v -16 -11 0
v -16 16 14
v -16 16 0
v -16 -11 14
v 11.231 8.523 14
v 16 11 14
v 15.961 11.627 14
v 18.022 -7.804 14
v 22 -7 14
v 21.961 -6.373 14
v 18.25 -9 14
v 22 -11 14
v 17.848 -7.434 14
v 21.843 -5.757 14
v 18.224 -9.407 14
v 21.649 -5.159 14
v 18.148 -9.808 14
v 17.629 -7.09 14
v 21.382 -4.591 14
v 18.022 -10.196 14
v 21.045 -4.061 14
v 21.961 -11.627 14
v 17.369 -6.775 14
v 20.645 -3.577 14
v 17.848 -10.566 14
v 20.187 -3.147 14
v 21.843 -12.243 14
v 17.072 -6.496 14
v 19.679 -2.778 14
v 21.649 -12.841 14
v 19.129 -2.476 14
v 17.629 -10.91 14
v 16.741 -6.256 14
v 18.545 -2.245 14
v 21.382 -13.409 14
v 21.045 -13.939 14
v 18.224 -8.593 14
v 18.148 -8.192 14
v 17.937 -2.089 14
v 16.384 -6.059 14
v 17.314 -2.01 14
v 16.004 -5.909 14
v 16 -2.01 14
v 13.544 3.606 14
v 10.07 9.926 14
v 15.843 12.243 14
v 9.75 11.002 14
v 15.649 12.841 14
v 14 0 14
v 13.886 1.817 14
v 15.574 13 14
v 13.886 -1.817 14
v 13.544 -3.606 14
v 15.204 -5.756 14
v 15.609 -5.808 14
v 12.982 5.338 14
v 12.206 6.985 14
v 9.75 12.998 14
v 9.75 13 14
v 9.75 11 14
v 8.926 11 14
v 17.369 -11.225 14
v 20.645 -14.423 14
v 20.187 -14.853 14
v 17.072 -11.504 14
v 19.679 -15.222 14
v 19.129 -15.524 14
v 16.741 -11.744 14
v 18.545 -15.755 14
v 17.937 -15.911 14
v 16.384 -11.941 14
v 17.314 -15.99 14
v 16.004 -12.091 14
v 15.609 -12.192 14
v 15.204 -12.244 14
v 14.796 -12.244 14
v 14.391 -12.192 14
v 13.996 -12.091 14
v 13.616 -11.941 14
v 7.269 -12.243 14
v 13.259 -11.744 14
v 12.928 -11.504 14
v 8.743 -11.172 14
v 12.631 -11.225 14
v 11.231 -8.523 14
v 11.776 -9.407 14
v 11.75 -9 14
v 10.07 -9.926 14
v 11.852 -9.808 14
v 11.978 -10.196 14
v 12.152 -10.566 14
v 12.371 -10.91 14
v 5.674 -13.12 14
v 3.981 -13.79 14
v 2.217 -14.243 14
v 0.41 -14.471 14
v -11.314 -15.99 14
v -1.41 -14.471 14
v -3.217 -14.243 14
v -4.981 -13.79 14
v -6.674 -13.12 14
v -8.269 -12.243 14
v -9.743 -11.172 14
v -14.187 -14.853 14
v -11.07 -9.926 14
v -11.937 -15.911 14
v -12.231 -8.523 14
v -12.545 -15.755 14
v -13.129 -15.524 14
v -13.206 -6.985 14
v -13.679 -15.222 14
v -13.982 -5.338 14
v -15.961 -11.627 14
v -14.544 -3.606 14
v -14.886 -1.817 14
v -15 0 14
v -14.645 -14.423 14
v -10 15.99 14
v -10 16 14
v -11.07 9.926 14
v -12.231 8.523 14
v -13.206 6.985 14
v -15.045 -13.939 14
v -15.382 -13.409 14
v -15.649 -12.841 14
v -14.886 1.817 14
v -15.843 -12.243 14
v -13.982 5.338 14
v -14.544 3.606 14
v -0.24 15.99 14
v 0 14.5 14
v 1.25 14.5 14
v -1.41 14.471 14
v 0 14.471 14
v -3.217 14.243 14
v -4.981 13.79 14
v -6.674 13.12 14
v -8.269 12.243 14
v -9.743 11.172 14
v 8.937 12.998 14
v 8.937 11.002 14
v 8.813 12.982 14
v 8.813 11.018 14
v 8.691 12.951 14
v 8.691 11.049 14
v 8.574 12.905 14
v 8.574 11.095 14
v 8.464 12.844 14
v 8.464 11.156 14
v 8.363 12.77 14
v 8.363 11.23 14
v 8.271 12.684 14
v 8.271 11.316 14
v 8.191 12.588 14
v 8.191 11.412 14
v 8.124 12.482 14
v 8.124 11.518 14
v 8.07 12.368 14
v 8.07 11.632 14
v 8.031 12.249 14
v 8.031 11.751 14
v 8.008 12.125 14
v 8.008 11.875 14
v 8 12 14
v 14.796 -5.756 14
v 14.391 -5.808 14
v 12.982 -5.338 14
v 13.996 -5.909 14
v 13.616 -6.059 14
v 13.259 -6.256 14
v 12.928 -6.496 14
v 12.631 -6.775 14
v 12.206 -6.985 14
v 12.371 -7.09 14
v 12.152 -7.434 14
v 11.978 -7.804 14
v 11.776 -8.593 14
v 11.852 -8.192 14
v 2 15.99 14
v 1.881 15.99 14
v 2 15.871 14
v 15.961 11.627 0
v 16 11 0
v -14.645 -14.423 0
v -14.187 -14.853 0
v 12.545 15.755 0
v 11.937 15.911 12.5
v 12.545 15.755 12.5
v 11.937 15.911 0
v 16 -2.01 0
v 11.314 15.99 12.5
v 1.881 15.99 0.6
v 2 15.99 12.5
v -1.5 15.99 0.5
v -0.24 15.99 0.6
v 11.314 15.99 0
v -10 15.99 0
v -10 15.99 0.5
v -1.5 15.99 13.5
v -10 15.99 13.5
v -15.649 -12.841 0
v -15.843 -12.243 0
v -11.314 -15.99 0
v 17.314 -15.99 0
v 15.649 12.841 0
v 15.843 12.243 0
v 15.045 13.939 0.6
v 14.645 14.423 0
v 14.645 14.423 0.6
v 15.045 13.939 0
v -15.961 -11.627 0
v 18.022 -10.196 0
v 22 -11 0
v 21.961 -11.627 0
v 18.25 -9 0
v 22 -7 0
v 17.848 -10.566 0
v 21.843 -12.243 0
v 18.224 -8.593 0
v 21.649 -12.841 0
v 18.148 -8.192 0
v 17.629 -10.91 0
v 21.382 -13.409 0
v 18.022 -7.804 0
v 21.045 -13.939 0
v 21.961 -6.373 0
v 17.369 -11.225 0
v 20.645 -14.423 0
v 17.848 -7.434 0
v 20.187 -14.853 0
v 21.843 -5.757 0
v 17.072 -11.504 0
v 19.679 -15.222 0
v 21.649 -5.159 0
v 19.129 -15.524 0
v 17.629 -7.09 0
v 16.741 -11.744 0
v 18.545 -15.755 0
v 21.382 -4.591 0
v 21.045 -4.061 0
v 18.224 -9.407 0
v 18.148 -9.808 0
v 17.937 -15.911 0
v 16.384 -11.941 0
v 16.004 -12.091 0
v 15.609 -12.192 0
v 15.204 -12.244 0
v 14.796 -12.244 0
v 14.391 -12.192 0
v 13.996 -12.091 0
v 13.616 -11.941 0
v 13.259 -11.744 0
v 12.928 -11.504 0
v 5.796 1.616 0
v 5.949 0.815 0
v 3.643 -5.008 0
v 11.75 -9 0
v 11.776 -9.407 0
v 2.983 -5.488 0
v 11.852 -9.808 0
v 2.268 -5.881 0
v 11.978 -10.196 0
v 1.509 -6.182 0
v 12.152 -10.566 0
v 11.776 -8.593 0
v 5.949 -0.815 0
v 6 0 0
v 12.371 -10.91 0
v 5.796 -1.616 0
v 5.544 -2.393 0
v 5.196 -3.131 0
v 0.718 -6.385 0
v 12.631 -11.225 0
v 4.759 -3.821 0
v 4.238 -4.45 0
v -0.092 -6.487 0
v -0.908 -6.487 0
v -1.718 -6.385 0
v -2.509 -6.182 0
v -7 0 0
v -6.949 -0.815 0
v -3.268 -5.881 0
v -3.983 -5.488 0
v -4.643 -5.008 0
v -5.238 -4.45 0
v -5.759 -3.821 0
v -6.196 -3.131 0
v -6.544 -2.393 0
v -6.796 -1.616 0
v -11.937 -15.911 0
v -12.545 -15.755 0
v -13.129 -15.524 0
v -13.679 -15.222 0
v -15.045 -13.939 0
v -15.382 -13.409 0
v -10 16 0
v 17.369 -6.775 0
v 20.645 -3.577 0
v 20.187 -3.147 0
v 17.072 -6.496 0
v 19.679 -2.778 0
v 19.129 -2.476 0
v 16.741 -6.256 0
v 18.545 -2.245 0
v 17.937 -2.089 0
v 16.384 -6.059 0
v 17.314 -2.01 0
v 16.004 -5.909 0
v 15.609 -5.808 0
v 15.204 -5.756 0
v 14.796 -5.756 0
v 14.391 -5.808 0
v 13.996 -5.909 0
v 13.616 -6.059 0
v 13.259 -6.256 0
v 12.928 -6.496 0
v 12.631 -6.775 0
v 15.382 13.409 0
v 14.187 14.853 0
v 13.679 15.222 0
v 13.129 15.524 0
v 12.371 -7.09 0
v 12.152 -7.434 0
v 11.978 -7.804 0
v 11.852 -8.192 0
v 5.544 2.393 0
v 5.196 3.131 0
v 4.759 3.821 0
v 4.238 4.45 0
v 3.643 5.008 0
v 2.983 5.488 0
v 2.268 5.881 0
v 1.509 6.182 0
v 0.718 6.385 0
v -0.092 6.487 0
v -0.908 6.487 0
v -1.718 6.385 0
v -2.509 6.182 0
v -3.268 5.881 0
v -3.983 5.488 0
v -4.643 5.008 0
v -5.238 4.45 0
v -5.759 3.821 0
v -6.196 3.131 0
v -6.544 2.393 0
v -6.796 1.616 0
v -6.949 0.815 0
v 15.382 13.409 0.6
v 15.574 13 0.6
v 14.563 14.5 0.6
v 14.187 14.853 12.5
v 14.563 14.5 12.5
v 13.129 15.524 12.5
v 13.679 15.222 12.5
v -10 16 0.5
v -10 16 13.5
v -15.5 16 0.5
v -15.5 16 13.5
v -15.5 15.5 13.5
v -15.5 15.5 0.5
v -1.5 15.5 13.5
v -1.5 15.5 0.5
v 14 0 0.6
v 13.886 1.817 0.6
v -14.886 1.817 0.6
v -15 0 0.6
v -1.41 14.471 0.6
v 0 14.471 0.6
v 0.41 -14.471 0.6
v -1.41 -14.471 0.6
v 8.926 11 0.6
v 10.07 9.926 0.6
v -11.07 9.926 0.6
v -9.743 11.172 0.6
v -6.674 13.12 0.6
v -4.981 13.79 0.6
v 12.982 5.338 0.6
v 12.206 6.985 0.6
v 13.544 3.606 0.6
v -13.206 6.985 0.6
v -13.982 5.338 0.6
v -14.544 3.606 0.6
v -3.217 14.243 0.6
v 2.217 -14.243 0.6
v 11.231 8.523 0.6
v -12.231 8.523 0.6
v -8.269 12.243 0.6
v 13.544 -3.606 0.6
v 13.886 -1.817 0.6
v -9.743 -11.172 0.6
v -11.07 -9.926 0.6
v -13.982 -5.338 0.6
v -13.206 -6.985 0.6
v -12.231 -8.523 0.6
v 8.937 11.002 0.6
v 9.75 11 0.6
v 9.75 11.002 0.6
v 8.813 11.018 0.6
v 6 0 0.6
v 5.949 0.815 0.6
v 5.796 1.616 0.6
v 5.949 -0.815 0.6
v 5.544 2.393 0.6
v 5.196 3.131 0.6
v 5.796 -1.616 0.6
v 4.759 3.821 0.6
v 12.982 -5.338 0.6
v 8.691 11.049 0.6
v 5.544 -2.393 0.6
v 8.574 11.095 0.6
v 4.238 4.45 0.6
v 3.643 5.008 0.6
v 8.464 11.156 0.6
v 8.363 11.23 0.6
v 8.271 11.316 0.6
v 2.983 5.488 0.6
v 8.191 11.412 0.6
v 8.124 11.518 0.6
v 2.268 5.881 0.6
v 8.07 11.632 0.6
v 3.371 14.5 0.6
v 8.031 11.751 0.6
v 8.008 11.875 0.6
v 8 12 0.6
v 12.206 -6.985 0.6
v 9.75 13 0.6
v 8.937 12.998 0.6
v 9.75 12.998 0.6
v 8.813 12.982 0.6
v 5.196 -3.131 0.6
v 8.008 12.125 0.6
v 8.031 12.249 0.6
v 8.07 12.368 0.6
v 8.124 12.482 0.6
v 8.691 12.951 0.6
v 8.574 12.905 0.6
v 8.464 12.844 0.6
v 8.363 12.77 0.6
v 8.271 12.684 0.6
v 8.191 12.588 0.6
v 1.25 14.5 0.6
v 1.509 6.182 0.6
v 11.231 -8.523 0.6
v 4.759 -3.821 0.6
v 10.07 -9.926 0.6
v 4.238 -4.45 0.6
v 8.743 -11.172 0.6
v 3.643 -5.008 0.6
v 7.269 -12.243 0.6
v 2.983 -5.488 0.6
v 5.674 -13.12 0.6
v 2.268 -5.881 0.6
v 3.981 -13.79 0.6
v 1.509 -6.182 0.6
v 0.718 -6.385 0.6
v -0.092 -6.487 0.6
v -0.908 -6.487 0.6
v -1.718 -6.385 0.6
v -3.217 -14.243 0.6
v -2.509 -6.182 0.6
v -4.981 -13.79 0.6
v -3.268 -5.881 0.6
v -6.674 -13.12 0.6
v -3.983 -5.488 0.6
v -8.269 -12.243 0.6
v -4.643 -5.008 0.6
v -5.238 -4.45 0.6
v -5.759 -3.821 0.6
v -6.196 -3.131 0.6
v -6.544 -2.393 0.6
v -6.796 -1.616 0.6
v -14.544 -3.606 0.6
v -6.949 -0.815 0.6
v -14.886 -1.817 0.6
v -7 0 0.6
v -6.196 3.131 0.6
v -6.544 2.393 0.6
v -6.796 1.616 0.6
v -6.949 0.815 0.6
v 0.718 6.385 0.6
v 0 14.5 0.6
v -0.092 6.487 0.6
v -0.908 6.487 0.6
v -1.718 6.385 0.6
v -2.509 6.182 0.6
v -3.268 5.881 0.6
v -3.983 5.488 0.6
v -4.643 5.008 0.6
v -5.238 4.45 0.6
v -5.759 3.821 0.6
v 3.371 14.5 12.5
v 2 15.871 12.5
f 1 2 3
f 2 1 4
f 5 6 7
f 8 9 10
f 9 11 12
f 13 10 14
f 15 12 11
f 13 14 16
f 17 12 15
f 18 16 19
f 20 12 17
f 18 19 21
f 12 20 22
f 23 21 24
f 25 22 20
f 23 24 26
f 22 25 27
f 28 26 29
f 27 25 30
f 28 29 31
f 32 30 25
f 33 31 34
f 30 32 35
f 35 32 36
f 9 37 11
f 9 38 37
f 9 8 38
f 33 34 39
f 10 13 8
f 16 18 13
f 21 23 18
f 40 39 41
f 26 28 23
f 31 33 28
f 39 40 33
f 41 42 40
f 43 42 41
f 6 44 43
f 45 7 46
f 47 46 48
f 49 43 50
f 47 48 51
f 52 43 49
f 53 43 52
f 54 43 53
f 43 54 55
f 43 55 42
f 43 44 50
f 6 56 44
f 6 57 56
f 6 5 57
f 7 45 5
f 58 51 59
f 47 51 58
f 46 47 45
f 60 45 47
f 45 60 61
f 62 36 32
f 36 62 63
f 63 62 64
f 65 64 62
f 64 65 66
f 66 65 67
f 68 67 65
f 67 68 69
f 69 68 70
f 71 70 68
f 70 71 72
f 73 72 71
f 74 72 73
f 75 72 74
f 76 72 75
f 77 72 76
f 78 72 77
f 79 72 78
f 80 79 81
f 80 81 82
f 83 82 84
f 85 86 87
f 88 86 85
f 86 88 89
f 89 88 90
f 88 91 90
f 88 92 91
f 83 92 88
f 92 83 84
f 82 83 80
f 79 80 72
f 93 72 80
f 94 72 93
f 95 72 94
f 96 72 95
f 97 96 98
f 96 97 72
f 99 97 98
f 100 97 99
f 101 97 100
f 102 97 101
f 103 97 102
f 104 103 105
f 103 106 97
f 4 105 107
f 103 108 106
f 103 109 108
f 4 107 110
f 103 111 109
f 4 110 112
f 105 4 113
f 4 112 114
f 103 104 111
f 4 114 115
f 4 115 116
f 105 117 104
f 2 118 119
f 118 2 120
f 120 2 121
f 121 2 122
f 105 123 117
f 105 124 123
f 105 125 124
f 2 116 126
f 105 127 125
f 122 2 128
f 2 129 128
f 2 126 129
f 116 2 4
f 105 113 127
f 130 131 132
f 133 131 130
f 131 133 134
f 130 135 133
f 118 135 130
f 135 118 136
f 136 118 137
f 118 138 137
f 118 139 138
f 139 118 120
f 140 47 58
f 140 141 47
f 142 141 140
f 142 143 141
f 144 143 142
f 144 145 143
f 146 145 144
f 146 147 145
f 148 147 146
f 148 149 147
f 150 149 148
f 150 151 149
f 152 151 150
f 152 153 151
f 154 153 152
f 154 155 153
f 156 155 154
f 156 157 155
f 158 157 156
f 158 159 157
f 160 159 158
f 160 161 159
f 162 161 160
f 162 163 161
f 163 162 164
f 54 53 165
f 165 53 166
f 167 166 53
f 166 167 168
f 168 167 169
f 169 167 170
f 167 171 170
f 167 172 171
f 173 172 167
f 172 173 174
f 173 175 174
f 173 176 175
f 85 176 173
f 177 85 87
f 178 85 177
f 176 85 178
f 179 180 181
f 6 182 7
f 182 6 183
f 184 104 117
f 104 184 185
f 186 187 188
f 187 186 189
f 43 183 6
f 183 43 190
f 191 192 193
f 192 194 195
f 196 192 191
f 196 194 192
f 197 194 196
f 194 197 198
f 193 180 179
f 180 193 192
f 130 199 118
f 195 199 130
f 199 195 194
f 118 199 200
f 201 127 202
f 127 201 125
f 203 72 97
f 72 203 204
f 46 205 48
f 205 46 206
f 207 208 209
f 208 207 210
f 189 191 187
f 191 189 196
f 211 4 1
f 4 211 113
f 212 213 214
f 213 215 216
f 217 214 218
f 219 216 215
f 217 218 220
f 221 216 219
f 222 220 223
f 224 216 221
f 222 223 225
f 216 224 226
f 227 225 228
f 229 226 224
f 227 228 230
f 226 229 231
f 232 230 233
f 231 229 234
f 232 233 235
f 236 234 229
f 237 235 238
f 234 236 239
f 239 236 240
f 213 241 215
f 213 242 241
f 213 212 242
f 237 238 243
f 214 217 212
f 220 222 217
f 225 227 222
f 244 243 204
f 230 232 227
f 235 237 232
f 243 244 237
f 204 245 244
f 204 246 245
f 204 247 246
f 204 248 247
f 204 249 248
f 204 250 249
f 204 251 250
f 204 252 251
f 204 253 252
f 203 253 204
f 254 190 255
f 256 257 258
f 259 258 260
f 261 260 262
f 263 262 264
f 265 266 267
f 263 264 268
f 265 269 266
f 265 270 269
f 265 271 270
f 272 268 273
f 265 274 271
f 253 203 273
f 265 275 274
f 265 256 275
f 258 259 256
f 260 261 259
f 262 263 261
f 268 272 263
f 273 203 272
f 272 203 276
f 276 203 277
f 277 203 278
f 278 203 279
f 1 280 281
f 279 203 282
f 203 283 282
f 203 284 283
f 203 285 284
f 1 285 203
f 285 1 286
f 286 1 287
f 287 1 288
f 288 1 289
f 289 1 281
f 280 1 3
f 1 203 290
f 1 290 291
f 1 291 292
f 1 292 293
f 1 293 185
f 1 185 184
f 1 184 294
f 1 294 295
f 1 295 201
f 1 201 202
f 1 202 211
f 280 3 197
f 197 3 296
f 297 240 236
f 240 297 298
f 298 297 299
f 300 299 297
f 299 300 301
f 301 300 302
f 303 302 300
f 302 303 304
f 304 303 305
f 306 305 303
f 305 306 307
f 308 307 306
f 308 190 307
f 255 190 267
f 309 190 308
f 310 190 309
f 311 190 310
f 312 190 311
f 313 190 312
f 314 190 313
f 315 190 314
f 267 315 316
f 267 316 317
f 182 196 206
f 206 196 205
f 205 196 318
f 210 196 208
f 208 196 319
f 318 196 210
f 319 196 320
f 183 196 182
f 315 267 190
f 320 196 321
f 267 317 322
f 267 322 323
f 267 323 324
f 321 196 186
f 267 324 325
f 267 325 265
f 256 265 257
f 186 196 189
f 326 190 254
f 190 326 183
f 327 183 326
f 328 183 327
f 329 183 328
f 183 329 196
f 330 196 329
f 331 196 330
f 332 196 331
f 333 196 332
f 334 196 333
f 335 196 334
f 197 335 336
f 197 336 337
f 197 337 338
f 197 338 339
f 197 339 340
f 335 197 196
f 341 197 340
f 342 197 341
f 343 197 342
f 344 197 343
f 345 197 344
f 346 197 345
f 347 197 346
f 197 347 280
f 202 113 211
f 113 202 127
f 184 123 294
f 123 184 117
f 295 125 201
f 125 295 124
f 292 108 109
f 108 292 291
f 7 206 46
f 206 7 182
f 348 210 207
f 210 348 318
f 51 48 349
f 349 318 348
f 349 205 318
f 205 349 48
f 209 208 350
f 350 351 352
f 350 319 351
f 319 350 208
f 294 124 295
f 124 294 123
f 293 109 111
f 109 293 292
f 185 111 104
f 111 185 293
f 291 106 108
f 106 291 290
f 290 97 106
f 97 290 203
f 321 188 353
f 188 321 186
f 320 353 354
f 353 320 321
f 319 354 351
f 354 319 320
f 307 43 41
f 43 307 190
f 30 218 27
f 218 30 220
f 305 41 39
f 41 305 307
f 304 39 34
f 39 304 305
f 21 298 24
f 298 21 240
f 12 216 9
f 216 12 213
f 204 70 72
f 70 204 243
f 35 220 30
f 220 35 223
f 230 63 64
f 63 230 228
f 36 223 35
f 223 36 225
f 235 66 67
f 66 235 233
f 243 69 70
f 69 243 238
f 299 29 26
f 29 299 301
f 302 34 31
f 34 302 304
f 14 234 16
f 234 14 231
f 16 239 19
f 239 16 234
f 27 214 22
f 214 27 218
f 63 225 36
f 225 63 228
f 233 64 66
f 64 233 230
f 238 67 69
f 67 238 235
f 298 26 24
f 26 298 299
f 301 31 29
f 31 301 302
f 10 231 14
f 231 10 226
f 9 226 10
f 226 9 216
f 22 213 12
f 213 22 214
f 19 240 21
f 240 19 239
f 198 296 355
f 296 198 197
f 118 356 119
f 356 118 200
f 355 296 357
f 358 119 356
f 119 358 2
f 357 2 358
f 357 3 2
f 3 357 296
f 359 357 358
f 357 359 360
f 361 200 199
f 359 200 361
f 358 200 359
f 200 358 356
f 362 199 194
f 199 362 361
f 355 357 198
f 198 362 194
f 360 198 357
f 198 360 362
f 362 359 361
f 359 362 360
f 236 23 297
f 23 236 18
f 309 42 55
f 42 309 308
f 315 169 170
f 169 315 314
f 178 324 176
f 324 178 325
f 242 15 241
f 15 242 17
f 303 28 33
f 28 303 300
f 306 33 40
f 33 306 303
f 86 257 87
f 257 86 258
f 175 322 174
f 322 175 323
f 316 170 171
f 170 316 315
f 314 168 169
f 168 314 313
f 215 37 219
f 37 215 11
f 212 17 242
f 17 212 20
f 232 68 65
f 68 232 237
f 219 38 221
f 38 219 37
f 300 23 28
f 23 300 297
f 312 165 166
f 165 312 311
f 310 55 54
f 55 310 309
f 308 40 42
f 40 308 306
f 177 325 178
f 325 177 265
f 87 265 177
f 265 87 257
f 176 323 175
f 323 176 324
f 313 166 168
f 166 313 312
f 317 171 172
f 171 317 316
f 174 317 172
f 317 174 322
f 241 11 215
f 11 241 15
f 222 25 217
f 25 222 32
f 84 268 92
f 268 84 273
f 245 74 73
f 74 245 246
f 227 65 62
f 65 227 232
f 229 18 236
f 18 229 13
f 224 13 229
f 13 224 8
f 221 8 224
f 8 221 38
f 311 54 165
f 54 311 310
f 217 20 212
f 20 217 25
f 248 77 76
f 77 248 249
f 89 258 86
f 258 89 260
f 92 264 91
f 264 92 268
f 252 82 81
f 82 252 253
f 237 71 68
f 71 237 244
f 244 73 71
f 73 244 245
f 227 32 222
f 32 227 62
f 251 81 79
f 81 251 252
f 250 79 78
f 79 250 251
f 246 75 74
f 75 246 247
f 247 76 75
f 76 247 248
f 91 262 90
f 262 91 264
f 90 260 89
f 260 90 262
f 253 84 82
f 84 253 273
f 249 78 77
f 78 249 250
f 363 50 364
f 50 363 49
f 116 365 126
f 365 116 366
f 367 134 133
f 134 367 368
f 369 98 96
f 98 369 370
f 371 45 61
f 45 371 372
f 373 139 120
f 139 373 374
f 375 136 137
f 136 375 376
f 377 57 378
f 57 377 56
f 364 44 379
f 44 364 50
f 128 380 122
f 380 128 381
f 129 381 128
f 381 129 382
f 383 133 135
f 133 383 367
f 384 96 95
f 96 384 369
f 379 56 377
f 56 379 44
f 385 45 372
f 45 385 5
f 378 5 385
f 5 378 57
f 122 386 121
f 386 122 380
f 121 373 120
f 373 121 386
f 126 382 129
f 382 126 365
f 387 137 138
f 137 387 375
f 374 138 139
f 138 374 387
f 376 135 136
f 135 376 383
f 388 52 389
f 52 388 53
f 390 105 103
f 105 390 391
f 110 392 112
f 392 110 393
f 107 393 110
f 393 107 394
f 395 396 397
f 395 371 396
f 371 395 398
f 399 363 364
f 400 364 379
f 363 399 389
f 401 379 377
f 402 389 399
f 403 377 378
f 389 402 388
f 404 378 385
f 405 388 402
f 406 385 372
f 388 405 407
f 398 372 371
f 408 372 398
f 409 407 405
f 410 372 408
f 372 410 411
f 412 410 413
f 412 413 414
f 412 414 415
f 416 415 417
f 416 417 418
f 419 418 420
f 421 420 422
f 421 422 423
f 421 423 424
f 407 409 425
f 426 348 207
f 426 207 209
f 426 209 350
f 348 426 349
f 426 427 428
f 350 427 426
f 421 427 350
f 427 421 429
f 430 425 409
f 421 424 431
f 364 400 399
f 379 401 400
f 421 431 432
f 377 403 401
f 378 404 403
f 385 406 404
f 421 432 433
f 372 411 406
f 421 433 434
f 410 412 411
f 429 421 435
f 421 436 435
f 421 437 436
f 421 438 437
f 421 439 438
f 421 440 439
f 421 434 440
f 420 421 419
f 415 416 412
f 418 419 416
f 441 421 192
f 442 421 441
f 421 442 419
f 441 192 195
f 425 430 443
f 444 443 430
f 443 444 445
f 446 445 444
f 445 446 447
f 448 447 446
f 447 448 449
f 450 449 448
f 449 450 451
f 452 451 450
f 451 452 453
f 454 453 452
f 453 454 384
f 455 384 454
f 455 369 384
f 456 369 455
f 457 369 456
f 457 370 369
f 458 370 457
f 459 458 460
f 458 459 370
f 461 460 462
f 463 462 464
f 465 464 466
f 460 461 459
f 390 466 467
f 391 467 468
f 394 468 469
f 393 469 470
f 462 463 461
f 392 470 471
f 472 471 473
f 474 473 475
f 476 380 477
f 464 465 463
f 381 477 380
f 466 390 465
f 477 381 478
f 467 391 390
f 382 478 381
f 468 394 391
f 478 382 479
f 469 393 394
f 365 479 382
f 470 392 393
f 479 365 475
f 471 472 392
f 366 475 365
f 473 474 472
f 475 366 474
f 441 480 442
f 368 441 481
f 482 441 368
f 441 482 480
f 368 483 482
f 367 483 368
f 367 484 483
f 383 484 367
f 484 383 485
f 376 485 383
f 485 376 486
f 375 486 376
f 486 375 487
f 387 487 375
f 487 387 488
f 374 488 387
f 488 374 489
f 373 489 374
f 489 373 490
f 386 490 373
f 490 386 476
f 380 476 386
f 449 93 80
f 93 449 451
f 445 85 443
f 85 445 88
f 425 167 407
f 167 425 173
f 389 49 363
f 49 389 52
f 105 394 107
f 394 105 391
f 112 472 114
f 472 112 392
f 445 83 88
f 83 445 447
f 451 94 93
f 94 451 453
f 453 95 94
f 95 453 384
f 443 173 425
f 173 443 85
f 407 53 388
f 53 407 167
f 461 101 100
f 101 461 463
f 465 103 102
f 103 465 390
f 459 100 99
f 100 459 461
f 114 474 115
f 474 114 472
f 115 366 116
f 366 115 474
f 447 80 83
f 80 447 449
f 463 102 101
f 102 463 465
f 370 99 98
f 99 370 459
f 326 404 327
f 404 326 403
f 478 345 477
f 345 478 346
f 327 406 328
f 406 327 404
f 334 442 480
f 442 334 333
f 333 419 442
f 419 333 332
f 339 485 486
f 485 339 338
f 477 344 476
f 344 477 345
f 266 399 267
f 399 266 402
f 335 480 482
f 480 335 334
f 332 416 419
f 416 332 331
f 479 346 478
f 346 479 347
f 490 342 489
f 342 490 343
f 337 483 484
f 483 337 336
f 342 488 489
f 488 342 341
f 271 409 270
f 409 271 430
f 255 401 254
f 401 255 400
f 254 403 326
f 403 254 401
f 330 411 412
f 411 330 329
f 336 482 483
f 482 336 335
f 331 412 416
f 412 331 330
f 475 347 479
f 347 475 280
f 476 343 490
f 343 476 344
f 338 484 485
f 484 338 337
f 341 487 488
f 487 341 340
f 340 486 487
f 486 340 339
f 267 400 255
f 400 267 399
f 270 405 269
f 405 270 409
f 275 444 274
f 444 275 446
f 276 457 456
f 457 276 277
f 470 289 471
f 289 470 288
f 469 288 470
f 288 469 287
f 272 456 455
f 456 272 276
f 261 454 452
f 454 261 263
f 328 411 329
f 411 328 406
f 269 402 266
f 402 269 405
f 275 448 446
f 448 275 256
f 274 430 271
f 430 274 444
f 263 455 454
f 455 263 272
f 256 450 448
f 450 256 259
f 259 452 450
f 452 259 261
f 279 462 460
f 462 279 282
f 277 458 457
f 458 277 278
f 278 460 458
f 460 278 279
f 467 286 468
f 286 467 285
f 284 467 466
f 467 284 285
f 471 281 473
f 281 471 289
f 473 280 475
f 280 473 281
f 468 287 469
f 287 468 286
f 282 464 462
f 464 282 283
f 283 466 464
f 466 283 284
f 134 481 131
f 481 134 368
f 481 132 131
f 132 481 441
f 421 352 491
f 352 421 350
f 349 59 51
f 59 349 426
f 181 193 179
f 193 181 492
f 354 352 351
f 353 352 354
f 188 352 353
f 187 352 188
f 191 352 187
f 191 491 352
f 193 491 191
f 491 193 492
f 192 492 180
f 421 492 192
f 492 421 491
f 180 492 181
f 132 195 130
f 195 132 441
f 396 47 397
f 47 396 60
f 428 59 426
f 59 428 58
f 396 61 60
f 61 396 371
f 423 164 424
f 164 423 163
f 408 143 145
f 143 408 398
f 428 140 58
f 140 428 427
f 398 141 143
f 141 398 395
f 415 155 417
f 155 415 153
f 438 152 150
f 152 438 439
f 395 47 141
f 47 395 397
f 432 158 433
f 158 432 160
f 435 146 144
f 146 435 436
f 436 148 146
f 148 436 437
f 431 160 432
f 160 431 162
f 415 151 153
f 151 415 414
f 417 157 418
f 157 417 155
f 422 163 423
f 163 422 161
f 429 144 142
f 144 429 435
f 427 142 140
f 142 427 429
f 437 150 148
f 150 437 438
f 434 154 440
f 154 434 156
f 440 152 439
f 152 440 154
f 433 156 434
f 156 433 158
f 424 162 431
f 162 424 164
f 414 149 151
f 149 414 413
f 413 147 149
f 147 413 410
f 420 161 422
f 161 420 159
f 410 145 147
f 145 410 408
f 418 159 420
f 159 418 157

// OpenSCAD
$fn = 50;


union() {
	difference() {
		union() {
			translate(v = [0, 0, 0]) {
				rotate(a = [0, 0, 0]) {
					hull() {
						translate(v = [-11.0000000000, 11.0000000000, 0]) {
							rotate(a = [0, 0, 0]) {
								translate(v = [0, 0, 0]) {
									rotate(a = [0, 0, 0]) {
										cylinder(h = 14, r = 5);
									}
								}
							}
						}
						translate(v = [11.0000000000, 11.0000000000, 0]) {
							rotate(a = [0, 0, 0]) {
								translate(v = [0, 0, 0]) {
									rotate(a = [0, 0, 0]) {
										cylinder(h = 14, r = 5);
									}
								}
							}
						}
						translate(v = [-11.0000000000, -11.0000000000, 0]) {
							rotate(a = [0, 0, 0]) {
								translate(v = [0, 0, 0]) {
									rotate(a = [0, 0, 0]) {
										cylinder(h = 14, r = 5);
									}
								}
							}
						}
						translate(v = [11.0000000000, -11.0000000000, 0]) {
							rotate(a = [0, 0, 0]) {
								translate(v = [0, 0, 0]) {
									rotate(a = [0, 0, 0]) {
										cylinder(h = 14, r = 5);
									}
								}
							}
						}
					}
				}
			}
			translate(v = [7.5000000000, -9.0000000000, 0]) {
				rotate(a = [0, 0, 0]) {
					hull() {
						translate(v = [-9.5000000000, 2.0000000000, 0]) {
							rotate(a = [0, 0, 0]) {
								translate(v = [0, 0, 0]) {
									rotate(a = [0, 0, 0]) {
										cylinder(h = 14, r = 5);
									}
								}
							}
						}
						translate(v = [9.5000000000, 2.0000000000, 0]) {
							rotate(a = [0, 0, 0]) {
								translate(v = [0, 0, 0]) {
									rotate(a = [0, 0, 0]) {
										cylinder(h = 14, r = 5);
									}
								}
							}
						}
						translate(v = [-9.5000000000, -2.0000000000, 0]) {
							rotate(a = [0, 0, 0]) {
								translate(v = [0, 0, 0]) {
									rotate(a = [0, 0, 0]) {
										cylinder(h = 14, r = 5);
									}
								}
							}
						}
						translate(v = [9.5000000000, -2.0000000000, 0]) {
							rotate(a = [0, 0, 0]) {
								translate(v = [0, 0, 0]) {
									rotate(a = [0, 0, 0]) {
										cylinder(h = 14, r = 5);
									}
								}
							}
						}
					}
				}
			}
			translate(v = [-16.0000000000, 10.0000000000, 0]) {
				rotate(a = [0, 0, 0]) {
					cube(size = [6, 6, 14]);
				}
			}
		}
		union() {
			translate(v = [-15.5000000000, 15.5000000000, 0.5000000000]) {
				rotate(a = [0, 0, 0]) {
					cube(size = [14, 0.5000000000, 13.0000000000]);
				}
			}
			translate(v = [15.0000000000, -9.0000000000, -125.0000000000]) {
				rotate(a = [0, 0, 0]) {
					cylinder(h = 250, r = 3.2500000000);
				}
			}
			translate(v = [-0.5000000000, 0.0000000000, 0.6000000000]) {
				rotate(a = [0, 0, 0]) {
					cylinder(h = 16.4000000000, r = 14.5000000000);
				}
			}
			translate(v = [-0.5000000000, 0.0000000000, -7.0000000000]) {
				rotate(a = [0, 0, 0]) {
					cylinder(h = 14, r = 6.5000000000);
				}
			}
			translate(v = [0.0000000000, 13.0000000000, 0.6000000000]) {
				rotate(a = [0, 0, 0]) {
					cube(size = [16.0000000000, 1.5000000000, 16.4000000000]);
				}
			}
			translate(v = [2.0000000000, 13.0000000000, 12.5000000000]) {
				rotate(a = [0, 0, 0]) {
					cube(size = [14.0000000000, 4.5000000000, 1.5000000000]);
				}
			}
			translate(v = [-3.0000000000, 18.7500000000, 0.6000000000]) {
				rotate(a = [0, 0, -45]) {
					cube(size = [10, 1.5000000000, 16.4000000000]);
				}
			}
			translate(v = [2.2500000000, 11.0000000000, 0.6000000000]) {
				rotate(a = [0, 0, 0]) {
					cube(size = [7.5000000000, 2, 13.4000000000]);
				}
			}
		}
	}
	union() {
		translate(v = [11.5000000000, 12, 0]) {
			rotate(a = [0, 0, 0]) {
				hull() {
					translate(v = [2.5000000000, 0, 0]) {
						rotate(a = [0, 0, 0]) {
							translate(v = [0, 0, 0]) {
								rotate(a = [0, 0, 0]) {
									cylinder(h = 14, r = 1.0000000000);
								}
							}
						}
					}
					translate(v = [-2.5000000000, 0, 0]) {
						rotate(a = [0, 0, 0]) {
							translate(v = [0, 0, 0]) {
								rotate(a = [0, 0, 0]) {
									cylinder(h = 14, r = 1.0000000000);
								}
							}
						}
					}
				}
			}
		}
	}
}
